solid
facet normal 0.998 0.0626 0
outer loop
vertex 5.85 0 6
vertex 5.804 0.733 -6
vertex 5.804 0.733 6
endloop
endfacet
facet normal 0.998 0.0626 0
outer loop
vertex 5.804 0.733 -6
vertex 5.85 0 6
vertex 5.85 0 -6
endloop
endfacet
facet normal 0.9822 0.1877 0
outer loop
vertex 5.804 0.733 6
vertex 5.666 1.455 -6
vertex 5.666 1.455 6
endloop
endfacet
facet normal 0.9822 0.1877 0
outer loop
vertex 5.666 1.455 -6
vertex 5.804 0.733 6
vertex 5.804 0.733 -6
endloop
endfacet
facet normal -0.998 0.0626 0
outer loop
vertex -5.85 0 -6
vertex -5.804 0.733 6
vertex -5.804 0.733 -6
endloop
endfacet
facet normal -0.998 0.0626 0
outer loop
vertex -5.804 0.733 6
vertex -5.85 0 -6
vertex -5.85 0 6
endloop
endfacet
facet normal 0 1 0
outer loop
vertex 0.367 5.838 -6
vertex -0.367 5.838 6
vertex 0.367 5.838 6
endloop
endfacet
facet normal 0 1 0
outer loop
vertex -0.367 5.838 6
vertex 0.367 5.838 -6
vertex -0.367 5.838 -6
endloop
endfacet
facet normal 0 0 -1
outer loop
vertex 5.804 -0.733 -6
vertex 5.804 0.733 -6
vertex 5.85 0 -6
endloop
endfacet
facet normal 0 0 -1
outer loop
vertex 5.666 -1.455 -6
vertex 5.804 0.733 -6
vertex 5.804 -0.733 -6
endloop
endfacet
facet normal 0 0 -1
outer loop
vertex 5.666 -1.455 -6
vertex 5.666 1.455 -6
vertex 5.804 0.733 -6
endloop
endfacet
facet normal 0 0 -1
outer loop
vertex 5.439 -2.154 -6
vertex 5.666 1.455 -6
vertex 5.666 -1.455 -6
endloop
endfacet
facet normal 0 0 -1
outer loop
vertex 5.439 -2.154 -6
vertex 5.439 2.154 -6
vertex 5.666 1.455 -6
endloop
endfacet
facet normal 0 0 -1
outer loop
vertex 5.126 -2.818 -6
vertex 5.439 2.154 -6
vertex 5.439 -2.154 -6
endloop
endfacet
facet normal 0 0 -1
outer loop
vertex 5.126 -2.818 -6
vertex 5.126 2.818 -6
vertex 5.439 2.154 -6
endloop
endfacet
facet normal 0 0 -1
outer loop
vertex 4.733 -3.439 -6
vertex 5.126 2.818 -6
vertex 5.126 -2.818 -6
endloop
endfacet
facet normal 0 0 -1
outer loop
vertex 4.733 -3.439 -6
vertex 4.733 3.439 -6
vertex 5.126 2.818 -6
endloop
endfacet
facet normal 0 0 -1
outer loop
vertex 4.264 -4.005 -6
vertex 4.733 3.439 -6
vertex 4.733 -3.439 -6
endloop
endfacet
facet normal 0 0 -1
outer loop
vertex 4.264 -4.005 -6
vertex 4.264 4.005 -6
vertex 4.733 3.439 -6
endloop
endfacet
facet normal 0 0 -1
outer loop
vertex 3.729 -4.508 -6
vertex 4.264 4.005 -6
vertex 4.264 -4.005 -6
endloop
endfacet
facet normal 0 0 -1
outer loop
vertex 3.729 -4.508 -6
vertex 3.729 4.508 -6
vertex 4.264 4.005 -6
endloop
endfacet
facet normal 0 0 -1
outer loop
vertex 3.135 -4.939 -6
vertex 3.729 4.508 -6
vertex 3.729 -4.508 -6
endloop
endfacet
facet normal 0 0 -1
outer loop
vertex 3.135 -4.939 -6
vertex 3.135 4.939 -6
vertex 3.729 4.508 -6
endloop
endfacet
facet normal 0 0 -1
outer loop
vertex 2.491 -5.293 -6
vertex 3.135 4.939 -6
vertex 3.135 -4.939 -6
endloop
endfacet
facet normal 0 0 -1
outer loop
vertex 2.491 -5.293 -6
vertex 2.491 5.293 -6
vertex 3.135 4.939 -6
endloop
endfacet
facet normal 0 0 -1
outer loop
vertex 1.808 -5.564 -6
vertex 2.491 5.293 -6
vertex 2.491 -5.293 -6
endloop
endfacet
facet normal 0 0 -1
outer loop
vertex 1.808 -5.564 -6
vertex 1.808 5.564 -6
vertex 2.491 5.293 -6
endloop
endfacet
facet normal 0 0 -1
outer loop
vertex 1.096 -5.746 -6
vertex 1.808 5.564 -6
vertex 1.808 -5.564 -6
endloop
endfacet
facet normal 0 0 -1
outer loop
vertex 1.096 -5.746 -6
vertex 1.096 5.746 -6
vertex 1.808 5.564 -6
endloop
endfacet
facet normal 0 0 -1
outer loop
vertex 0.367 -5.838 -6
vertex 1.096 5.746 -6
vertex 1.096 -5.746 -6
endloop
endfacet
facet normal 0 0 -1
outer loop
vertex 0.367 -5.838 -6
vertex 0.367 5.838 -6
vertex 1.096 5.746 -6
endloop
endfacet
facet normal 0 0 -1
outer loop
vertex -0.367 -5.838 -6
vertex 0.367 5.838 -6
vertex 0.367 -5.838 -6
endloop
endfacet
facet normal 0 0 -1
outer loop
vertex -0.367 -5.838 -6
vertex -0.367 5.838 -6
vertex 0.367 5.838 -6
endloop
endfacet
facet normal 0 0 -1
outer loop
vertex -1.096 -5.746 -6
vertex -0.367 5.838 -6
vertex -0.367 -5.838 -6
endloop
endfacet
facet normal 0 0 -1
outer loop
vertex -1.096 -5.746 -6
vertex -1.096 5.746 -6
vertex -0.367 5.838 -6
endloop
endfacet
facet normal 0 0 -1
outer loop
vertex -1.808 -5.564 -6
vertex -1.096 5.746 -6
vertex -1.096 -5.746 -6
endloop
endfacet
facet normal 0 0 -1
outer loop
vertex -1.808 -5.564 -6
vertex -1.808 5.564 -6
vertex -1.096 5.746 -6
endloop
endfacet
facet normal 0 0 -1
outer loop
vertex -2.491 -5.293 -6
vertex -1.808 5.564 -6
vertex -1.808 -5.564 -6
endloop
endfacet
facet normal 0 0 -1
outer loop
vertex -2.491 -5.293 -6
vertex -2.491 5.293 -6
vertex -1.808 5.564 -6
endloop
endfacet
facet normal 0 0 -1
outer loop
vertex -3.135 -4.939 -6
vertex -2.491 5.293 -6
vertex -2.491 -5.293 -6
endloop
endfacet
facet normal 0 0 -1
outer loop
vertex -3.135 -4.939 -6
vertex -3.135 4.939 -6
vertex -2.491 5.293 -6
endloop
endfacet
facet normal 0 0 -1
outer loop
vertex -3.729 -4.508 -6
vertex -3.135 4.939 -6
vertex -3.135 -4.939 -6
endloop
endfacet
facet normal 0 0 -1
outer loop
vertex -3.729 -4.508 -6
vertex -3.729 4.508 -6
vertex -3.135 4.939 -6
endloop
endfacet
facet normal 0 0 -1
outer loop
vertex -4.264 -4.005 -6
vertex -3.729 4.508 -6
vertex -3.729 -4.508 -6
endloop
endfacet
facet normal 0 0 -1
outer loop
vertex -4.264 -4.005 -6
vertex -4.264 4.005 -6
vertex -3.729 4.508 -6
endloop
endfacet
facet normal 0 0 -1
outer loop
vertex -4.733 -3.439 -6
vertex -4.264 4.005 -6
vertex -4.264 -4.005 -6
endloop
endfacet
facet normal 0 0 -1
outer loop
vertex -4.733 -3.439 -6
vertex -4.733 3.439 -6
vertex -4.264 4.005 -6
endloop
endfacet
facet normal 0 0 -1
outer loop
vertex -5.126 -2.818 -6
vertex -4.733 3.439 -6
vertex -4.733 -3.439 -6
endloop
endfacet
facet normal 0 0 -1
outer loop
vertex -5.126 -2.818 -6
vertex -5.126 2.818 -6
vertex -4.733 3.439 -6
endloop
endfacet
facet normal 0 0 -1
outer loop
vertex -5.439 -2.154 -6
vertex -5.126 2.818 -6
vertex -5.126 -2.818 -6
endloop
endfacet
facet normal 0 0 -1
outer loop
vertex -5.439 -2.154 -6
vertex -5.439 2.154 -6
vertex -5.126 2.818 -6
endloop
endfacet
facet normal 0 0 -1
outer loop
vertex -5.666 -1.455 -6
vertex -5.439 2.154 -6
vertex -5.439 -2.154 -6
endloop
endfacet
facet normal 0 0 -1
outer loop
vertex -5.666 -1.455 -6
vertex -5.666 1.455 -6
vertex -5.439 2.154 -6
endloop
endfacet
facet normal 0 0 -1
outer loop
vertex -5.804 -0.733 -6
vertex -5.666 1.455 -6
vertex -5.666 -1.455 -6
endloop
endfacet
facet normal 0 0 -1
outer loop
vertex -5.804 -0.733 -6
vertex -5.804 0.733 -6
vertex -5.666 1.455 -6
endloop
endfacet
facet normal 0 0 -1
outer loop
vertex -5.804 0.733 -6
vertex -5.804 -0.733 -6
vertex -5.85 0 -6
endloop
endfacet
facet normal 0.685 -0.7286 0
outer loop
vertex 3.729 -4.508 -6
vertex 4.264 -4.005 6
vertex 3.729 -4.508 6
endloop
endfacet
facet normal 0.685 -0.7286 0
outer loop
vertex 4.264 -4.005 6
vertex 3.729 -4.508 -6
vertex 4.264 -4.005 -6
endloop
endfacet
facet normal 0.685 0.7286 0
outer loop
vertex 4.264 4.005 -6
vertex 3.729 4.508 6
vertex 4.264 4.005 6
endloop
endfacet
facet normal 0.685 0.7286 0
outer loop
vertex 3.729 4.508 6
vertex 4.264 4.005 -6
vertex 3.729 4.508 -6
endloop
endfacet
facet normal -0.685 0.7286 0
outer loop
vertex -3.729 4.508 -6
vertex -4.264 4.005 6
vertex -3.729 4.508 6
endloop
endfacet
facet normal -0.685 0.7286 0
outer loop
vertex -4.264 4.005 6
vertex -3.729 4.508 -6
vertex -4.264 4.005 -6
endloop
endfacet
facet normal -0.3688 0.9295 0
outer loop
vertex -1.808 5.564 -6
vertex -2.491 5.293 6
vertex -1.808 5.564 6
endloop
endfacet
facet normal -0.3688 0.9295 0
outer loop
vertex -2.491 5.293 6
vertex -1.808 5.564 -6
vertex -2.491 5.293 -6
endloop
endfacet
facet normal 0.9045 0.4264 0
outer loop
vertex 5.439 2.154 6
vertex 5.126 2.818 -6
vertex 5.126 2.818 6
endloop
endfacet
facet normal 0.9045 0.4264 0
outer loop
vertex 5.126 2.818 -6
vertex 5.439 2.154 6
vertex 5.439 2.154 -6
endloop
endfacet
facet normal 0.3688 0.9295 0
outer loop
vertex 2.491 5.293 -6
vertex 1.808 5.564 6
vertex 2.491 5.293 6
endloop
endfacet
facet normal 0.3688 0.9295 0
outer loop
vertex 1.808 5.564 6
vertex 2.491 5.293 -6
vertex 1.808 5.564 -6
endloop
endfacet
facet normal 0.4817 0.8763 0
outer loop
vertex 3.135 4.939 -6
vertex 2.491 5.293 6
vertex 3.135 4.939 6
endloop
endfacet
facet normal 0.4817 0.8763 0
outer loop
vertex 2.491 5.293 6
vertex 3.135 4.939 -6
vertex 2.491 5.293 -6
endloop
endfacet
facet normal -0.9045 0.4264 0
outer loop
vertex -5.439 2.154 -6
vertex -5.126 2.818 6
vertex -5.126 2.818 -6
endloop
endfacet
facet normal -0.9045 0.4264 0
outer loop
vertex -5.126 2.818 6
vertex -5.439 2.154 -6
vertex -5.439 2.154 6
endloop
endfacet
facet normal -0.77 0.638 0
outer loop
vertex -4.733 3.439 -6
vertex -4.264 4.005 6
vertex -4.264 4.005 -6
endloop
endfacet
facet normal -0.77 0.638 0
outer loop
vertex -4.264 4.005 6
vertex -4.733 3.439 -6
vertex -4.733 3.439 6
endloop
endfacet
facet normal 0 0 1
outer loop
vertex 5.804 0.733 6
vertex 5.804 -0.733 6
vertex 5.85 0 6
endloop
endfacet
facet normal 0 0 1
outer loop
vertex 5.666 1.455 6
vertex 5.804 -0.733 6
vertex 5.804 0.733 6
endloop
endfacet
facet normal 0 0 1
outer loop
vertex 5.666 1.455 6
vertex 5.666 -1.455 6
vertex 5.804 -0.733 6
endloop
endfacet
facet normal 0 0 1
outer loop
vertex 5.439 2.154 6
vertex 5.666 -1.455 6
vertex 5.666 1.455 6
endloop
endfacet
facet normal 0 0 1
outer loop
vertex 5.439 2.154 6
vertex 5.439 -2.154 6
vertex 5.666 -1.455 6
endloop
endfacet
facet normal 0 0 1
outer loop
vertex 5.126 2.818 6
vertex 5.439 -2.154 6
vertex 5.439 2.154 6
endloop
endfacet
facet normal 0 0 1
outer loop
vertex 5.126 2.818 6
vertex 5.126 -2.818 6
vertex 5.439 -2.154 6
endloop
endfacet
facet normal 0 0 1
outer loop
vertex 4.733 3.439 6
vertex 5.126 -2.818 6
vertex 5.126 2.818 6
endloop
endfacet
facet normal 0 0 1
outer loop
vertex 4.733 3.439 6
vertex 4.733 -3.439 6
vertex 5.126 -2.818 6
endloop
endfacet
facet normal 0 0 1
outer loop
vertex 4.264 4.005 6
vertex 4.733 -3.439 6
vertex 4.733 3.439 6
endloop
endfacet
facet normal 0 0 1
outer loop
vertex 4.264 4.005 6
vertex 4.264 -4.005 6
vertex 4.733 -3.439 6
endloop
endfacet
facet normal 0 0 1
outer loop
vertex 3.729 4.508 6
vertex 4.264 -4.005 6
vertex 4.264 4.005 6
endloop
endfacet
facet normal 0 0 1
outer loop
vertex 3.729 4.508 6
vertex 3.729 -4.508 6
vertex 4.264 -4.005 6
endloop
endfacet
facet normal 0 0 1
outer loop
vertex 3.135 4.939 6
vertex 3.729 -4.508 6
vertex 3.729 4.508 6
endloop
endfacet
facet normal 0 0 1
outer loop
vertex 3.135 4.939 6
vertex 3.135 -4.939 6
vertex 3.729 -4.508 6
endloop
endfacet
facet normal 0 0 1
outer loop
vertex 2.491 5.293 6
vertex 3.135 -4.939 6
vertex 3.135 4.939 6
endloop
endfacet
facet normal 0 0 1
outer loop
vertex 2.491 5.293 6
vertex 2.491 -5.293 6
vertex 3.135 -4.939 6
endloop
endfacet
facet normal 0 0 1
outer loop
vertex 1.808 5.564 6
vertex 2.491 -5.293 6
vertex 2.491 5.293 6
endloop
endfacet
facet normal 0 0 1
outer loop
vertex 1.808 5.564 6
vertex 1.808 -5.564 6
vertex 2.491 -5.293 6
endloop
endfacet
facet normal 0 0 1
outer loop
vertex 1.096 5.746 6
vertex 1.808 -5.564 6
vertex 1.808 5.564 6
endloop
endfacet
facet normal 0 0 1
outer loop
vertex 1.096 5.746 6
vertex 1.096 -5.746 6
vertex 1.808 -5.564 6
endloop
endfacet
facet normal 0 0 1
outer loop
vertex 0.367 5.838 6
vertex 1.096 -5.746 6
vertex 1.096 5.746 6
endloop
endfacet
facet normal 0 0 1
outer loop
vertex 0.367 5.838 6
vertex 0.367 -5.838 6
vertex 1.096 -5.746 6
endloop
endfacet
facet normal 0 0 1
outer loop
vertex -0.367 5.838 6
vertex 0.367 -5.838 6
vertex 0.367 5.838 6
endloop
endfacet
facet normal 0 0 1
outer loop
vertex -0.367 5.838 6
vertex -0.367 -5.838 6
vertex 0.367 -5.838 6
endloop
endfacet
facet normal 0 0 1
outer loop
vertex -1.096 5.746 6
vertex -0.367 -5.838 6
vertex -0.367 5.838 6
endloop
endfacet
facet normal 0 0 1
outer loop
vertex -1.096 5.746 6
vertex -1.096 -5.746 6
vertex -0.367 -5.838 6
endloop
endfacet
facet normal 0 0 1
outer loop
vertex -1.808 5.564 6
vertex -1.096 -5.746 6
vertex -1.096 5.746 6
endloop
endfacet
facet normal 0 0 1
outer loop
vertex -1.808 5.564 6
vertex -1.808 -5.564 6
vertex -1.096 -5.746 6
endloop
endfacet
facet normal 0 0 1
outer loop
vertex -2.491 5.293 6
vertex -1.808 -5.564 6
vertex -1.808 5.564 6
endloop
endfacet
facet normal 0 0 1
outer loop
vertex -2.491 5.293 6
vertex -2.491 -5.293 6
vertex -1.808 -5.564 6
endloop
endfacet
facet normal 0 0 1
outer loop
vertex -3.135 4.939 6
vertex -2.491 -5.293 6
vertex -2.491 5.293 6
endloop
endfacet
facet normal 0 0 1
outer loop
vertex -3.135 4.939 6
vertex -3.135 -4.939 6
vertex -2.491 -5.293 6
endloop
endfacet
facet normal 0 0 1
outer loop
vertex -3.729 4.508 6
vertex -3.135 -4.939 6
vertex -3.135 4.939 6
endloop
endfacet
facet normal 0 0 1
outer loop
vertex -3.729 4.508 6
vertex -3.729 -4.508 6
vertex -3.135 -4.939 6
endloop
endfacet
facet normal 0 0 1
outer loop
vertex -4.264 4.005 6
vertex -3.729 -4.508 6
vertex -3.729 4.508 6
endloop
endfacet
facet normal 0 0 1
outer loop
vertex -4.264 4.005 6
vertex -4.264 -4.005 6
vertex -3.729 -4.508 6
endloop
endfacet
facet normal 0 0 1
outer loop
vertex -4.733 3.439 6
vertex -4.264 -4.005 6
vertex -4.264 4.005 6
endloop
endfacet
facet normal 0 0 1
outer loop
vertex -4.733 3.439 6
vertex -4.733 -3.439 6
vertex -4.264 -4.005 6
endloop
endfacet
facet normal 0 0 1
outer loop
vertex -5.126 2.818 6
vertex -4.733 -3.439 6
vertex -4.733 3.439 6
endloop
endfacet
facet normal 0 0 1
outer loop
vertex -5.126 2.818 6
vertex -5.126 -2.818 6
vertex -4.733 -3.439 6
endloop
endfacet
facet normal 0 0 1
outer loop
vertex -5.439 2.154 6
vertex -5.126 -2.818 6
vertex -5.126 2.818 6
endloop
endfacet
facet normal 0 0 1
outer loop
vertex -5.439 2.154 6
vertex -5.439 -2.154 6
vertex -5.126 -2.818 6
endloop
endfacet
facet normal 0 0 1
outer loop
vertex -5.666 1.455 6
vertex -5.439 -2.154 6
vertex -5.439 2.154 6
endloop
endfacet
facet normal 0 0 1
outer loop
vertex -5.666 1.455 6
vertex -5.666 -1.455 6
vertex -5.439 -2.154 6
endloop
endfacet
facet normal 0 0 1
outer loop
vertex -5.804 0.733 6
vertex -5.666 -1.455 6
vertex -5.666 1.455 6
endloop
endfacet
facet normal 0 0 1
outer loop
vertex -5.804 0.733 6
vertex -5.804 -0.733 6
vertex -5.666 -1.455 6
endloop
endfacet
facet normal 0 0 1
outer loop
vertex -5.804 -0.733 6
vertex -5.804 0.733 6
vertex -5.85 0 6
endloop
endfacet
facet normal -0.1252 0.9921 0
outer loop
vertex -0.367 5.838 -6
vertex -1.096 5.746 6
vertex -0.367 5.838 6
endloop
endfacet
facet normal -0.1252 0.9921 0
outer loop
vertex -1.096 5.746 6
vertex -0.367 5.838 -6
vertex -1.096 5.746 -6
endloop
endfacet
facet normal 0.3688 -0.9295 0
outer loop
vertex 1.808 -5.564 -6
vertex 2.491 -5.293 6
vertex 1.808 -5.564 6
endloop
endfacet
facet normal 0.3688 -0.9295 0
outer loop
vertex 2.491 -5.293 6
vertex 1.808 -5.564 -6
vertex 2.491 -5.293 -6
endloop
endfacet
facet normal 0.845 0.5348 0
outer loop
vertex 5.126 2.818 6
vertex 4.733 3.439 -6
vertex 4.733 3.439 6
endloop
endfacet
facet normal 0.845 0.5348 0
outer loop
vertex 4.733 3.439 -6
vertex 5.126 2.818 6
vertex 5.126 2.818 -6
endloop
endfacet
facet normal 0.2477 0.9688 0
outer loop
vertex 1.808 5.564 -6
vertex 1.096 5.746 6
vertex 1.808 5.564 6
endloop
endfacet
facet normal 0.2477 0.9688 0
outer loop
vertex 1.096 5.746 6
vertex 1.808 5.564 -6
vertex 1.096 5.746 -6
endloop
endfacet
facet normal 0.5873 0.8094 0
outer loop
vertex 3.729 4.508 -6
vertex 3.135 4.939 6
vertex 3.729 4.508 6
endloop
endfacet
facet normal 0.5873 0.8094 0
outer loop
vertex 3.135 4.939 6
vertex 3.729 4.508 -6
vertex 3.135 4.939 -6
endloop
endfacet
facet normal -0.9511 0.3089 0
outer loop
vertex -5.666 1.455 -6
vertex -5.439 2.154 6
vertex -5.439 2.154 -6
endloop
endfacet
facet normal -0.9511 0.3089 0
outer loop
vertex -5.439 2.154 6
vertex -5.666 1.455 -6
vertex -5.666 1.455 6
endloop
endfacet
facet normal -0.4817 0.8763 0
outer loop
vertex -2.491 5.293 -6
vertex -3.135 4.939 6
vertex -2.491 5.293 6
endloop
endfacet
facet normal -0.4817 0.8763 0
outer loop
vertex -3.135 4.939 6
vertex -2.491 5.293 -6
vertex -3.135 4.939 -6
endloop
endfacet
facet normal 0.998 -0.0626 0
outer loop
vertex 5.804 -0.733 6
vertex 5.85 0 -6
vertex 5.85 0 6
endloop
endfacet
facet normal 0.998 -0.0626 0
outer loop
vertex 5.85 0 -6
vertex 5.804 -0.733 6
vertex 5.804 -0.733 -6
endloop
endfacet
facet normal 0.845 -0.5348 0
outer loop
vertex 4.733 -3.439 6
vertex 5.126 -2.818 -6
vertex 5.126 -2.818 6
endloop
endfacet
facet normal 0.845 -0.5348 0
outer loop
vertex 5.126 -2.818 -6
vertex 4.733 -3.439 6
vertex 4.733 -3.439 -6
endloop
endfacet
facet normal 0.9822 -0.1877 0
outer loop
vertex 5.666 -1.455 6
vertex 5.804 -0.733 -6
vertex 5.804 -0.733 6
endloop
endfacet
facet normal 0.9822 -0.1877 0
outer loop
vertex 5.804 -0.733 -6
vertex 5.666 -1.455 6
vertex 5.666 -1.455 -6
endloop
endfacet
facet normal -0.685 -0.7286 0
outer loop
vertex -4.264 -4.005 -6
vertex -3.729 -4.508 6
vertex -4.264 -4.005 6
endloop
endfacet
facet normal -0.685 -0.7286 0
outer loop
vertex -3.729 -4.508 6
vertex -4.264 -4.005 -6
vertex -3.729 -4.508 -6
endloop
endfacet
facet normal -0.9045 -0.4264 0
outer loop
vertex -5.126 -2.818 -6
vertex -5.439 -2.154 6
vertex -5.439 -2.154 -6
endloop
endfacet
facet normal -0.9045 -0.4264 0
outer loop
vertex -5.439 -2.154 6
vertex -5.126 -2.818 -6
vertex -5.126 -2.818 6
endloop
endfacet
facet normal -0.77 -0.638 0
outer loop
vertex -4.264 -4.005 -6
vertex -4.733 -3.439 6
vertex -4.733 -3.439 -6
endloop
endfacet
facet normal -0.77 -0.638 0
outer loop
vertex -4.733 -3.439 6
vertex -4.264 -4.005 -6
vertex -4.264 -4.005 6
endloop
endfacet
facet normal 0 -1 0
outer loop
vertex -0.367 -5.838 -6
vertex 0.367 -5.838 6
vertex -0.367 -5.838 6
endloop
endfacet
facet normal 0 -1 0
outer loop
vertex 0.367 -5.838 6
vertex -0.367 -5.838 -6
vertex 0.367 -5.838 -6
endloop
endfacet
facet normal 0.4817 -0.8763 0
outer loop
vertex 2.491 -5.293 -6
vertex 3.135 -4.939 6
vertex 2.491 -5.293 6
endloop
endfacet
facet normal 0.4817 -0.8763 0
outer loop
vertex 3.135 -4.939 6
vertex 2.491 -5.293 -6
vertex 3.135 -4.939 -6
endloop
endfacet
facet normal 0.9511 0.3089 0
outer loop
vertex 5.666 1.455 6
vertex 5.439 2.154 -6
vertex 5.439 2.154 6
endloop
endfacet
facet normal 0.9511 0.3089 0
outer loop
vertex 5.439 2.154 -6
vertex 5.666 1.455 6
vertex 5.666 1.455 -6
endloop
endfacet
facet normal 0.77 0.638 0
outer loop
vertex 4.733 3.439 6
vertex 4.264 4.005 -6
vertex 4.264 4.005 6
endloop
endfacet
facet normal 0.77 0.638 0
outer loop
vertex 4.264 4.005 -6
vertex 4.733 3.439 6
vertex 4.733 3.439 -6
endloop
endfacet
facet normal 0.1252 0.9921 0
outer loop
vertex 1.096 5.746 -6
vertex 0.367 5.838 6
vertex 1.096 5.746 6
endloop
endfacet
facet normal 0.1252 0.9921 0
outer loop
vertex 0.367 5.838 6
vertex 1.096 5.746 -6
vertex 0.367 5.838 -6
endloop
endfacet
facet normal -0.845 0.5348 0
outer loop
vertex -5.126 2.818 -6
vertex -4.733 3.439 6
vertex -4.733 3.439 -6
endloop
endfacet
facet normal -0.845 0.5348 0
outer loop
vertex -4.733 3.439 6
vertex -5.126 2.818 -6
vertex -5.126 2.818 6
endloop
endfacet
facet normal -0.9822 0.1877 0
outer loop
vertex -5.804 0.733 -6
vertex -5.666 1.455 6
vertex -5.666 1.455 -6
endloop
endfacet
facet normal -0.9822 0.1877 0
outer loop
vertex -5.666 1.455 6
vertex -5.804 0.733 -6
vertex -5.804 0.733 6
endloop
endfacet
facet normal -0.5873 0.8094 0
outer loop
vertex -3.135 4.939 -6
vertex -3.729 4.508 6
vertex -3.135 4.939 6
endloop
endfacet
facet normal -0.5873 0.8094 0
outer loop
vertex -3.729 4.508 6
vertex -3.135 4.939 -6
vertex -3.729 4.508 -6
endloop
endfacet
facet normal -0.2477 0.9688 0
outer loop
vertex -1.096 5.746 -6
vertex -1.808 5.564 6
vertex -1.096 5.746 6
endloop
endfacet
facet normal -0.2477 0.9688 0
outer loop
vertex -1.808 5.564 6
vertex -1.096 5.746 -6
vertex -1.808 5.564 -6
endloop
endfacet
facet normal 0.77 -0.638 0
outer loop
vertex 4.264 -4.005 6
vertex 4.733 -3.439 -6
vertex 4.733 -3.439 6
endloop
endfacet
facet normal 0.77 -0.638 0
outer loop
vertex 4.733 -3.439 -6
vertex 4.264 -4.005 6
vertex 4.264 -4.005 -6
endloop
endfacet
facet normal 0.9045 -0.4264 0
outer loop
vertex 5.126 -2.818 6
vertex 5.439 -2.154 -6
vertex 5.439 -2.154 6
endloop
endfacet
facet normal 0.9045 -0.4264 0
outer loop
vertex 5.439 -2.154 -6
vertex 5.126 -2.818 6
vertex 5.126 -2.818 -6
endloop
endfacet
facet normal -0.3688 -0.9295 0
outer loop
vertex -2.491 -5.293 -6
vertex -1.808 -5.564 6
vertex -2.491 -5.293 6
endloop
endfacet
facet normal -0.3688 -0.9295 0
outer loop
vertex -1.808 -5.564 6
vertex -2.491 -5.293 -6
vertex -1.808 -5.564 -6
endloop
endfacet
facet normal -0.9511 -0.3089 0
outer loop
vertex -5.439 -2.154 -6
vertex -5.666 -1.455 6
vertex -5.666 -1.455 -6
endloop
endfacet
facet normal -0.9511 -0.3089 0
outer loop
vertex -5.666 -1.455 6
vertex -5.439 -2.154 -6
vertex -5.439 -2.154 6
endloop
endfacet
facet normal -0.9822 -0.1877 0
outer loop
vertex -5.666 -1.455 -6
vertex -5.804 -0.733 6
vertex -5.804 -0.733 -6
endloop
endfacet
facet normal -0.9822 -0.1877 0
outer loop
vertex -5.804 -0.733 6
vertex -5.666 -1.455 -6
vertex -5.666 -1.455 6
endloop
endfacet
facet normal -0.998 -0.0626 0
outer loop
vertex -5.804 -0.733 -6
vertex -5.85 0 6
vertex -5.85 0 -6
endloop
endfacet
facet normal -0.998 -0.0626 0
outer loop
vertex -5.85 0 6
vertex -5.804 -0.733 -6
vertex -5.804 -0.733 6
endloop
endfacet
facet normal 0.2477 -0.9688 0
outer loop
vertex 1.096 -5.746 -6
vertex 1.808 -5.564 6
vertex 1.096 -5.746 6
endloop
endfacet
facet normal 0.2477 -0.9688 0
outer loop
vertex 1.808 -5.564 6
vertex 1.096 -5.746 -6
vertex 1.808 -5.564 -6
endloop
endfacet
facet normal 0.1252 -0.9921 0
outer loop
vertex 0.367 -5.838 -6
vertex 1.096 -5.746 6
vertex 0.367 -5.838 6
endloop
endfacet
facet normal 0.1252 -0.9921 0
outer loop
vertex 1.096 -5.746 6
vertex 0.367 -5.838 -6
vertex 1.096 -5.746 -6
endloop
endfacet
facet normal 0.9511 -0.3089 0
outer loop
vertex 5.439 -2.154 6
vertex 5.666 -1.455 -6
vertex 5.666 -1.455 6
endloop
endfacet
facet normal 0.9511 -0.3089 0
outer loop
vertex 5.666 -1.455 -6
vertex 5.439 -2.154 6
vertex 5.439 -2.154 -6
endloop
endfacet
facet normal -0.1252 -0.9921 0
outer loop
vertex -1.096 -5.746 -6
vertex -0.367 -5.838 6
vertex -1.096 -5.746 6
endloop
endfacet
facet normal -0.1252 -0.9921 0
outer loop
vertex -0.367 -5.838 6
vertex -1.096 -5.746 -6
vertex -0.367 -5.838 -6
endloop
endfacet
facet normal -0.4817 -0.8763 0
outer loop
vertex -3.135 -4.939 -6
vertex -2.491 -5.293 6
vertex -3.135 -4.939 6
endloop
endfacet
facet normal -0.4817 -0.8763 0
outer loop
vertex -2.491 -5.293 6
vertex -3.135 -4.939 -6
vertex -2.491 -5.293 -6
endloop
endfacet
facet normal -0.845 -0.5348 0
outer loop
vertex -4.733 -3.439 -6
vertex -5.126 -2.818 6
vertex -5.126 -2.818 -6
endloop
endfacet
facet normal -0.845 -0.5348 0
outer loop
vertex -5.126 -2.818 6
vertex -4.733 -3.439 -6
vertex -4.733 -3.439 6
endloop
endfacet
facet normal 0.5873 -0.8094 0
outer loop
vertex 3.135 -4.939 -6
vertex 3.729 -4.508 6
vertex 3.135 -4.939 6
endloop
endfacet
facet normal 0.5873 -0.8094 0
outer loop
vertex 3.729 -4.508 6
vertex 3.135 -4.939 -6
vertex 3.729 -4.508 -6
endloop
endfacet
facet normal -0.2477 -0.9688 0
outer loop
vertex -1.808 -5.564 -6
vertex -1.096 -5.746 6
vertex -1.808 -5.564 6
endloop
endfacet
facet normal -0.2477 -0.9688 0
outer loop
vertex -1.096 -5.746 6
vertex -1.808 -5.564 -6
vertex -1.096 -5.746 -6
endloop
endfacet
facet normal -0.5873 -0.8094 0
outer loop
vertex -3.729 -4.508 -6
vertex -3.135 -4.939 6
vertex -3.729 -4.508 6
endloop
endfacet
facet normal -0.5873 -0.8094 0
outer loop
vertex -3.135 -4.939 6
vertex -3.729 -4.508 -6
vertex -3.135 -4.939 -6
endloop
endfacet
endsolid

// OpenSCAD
$fn = 50;


difference() {
	union() {
		translate(v = [0, 0, -6.0000000000]) {
			cylinder(h = 12, r = 5.8500000000);
		}
	}
	union() {
		translate(v = [0, 0, -100.0000000000]) {
			cylinder(h = 200, r = 0);
		}
	}
}
